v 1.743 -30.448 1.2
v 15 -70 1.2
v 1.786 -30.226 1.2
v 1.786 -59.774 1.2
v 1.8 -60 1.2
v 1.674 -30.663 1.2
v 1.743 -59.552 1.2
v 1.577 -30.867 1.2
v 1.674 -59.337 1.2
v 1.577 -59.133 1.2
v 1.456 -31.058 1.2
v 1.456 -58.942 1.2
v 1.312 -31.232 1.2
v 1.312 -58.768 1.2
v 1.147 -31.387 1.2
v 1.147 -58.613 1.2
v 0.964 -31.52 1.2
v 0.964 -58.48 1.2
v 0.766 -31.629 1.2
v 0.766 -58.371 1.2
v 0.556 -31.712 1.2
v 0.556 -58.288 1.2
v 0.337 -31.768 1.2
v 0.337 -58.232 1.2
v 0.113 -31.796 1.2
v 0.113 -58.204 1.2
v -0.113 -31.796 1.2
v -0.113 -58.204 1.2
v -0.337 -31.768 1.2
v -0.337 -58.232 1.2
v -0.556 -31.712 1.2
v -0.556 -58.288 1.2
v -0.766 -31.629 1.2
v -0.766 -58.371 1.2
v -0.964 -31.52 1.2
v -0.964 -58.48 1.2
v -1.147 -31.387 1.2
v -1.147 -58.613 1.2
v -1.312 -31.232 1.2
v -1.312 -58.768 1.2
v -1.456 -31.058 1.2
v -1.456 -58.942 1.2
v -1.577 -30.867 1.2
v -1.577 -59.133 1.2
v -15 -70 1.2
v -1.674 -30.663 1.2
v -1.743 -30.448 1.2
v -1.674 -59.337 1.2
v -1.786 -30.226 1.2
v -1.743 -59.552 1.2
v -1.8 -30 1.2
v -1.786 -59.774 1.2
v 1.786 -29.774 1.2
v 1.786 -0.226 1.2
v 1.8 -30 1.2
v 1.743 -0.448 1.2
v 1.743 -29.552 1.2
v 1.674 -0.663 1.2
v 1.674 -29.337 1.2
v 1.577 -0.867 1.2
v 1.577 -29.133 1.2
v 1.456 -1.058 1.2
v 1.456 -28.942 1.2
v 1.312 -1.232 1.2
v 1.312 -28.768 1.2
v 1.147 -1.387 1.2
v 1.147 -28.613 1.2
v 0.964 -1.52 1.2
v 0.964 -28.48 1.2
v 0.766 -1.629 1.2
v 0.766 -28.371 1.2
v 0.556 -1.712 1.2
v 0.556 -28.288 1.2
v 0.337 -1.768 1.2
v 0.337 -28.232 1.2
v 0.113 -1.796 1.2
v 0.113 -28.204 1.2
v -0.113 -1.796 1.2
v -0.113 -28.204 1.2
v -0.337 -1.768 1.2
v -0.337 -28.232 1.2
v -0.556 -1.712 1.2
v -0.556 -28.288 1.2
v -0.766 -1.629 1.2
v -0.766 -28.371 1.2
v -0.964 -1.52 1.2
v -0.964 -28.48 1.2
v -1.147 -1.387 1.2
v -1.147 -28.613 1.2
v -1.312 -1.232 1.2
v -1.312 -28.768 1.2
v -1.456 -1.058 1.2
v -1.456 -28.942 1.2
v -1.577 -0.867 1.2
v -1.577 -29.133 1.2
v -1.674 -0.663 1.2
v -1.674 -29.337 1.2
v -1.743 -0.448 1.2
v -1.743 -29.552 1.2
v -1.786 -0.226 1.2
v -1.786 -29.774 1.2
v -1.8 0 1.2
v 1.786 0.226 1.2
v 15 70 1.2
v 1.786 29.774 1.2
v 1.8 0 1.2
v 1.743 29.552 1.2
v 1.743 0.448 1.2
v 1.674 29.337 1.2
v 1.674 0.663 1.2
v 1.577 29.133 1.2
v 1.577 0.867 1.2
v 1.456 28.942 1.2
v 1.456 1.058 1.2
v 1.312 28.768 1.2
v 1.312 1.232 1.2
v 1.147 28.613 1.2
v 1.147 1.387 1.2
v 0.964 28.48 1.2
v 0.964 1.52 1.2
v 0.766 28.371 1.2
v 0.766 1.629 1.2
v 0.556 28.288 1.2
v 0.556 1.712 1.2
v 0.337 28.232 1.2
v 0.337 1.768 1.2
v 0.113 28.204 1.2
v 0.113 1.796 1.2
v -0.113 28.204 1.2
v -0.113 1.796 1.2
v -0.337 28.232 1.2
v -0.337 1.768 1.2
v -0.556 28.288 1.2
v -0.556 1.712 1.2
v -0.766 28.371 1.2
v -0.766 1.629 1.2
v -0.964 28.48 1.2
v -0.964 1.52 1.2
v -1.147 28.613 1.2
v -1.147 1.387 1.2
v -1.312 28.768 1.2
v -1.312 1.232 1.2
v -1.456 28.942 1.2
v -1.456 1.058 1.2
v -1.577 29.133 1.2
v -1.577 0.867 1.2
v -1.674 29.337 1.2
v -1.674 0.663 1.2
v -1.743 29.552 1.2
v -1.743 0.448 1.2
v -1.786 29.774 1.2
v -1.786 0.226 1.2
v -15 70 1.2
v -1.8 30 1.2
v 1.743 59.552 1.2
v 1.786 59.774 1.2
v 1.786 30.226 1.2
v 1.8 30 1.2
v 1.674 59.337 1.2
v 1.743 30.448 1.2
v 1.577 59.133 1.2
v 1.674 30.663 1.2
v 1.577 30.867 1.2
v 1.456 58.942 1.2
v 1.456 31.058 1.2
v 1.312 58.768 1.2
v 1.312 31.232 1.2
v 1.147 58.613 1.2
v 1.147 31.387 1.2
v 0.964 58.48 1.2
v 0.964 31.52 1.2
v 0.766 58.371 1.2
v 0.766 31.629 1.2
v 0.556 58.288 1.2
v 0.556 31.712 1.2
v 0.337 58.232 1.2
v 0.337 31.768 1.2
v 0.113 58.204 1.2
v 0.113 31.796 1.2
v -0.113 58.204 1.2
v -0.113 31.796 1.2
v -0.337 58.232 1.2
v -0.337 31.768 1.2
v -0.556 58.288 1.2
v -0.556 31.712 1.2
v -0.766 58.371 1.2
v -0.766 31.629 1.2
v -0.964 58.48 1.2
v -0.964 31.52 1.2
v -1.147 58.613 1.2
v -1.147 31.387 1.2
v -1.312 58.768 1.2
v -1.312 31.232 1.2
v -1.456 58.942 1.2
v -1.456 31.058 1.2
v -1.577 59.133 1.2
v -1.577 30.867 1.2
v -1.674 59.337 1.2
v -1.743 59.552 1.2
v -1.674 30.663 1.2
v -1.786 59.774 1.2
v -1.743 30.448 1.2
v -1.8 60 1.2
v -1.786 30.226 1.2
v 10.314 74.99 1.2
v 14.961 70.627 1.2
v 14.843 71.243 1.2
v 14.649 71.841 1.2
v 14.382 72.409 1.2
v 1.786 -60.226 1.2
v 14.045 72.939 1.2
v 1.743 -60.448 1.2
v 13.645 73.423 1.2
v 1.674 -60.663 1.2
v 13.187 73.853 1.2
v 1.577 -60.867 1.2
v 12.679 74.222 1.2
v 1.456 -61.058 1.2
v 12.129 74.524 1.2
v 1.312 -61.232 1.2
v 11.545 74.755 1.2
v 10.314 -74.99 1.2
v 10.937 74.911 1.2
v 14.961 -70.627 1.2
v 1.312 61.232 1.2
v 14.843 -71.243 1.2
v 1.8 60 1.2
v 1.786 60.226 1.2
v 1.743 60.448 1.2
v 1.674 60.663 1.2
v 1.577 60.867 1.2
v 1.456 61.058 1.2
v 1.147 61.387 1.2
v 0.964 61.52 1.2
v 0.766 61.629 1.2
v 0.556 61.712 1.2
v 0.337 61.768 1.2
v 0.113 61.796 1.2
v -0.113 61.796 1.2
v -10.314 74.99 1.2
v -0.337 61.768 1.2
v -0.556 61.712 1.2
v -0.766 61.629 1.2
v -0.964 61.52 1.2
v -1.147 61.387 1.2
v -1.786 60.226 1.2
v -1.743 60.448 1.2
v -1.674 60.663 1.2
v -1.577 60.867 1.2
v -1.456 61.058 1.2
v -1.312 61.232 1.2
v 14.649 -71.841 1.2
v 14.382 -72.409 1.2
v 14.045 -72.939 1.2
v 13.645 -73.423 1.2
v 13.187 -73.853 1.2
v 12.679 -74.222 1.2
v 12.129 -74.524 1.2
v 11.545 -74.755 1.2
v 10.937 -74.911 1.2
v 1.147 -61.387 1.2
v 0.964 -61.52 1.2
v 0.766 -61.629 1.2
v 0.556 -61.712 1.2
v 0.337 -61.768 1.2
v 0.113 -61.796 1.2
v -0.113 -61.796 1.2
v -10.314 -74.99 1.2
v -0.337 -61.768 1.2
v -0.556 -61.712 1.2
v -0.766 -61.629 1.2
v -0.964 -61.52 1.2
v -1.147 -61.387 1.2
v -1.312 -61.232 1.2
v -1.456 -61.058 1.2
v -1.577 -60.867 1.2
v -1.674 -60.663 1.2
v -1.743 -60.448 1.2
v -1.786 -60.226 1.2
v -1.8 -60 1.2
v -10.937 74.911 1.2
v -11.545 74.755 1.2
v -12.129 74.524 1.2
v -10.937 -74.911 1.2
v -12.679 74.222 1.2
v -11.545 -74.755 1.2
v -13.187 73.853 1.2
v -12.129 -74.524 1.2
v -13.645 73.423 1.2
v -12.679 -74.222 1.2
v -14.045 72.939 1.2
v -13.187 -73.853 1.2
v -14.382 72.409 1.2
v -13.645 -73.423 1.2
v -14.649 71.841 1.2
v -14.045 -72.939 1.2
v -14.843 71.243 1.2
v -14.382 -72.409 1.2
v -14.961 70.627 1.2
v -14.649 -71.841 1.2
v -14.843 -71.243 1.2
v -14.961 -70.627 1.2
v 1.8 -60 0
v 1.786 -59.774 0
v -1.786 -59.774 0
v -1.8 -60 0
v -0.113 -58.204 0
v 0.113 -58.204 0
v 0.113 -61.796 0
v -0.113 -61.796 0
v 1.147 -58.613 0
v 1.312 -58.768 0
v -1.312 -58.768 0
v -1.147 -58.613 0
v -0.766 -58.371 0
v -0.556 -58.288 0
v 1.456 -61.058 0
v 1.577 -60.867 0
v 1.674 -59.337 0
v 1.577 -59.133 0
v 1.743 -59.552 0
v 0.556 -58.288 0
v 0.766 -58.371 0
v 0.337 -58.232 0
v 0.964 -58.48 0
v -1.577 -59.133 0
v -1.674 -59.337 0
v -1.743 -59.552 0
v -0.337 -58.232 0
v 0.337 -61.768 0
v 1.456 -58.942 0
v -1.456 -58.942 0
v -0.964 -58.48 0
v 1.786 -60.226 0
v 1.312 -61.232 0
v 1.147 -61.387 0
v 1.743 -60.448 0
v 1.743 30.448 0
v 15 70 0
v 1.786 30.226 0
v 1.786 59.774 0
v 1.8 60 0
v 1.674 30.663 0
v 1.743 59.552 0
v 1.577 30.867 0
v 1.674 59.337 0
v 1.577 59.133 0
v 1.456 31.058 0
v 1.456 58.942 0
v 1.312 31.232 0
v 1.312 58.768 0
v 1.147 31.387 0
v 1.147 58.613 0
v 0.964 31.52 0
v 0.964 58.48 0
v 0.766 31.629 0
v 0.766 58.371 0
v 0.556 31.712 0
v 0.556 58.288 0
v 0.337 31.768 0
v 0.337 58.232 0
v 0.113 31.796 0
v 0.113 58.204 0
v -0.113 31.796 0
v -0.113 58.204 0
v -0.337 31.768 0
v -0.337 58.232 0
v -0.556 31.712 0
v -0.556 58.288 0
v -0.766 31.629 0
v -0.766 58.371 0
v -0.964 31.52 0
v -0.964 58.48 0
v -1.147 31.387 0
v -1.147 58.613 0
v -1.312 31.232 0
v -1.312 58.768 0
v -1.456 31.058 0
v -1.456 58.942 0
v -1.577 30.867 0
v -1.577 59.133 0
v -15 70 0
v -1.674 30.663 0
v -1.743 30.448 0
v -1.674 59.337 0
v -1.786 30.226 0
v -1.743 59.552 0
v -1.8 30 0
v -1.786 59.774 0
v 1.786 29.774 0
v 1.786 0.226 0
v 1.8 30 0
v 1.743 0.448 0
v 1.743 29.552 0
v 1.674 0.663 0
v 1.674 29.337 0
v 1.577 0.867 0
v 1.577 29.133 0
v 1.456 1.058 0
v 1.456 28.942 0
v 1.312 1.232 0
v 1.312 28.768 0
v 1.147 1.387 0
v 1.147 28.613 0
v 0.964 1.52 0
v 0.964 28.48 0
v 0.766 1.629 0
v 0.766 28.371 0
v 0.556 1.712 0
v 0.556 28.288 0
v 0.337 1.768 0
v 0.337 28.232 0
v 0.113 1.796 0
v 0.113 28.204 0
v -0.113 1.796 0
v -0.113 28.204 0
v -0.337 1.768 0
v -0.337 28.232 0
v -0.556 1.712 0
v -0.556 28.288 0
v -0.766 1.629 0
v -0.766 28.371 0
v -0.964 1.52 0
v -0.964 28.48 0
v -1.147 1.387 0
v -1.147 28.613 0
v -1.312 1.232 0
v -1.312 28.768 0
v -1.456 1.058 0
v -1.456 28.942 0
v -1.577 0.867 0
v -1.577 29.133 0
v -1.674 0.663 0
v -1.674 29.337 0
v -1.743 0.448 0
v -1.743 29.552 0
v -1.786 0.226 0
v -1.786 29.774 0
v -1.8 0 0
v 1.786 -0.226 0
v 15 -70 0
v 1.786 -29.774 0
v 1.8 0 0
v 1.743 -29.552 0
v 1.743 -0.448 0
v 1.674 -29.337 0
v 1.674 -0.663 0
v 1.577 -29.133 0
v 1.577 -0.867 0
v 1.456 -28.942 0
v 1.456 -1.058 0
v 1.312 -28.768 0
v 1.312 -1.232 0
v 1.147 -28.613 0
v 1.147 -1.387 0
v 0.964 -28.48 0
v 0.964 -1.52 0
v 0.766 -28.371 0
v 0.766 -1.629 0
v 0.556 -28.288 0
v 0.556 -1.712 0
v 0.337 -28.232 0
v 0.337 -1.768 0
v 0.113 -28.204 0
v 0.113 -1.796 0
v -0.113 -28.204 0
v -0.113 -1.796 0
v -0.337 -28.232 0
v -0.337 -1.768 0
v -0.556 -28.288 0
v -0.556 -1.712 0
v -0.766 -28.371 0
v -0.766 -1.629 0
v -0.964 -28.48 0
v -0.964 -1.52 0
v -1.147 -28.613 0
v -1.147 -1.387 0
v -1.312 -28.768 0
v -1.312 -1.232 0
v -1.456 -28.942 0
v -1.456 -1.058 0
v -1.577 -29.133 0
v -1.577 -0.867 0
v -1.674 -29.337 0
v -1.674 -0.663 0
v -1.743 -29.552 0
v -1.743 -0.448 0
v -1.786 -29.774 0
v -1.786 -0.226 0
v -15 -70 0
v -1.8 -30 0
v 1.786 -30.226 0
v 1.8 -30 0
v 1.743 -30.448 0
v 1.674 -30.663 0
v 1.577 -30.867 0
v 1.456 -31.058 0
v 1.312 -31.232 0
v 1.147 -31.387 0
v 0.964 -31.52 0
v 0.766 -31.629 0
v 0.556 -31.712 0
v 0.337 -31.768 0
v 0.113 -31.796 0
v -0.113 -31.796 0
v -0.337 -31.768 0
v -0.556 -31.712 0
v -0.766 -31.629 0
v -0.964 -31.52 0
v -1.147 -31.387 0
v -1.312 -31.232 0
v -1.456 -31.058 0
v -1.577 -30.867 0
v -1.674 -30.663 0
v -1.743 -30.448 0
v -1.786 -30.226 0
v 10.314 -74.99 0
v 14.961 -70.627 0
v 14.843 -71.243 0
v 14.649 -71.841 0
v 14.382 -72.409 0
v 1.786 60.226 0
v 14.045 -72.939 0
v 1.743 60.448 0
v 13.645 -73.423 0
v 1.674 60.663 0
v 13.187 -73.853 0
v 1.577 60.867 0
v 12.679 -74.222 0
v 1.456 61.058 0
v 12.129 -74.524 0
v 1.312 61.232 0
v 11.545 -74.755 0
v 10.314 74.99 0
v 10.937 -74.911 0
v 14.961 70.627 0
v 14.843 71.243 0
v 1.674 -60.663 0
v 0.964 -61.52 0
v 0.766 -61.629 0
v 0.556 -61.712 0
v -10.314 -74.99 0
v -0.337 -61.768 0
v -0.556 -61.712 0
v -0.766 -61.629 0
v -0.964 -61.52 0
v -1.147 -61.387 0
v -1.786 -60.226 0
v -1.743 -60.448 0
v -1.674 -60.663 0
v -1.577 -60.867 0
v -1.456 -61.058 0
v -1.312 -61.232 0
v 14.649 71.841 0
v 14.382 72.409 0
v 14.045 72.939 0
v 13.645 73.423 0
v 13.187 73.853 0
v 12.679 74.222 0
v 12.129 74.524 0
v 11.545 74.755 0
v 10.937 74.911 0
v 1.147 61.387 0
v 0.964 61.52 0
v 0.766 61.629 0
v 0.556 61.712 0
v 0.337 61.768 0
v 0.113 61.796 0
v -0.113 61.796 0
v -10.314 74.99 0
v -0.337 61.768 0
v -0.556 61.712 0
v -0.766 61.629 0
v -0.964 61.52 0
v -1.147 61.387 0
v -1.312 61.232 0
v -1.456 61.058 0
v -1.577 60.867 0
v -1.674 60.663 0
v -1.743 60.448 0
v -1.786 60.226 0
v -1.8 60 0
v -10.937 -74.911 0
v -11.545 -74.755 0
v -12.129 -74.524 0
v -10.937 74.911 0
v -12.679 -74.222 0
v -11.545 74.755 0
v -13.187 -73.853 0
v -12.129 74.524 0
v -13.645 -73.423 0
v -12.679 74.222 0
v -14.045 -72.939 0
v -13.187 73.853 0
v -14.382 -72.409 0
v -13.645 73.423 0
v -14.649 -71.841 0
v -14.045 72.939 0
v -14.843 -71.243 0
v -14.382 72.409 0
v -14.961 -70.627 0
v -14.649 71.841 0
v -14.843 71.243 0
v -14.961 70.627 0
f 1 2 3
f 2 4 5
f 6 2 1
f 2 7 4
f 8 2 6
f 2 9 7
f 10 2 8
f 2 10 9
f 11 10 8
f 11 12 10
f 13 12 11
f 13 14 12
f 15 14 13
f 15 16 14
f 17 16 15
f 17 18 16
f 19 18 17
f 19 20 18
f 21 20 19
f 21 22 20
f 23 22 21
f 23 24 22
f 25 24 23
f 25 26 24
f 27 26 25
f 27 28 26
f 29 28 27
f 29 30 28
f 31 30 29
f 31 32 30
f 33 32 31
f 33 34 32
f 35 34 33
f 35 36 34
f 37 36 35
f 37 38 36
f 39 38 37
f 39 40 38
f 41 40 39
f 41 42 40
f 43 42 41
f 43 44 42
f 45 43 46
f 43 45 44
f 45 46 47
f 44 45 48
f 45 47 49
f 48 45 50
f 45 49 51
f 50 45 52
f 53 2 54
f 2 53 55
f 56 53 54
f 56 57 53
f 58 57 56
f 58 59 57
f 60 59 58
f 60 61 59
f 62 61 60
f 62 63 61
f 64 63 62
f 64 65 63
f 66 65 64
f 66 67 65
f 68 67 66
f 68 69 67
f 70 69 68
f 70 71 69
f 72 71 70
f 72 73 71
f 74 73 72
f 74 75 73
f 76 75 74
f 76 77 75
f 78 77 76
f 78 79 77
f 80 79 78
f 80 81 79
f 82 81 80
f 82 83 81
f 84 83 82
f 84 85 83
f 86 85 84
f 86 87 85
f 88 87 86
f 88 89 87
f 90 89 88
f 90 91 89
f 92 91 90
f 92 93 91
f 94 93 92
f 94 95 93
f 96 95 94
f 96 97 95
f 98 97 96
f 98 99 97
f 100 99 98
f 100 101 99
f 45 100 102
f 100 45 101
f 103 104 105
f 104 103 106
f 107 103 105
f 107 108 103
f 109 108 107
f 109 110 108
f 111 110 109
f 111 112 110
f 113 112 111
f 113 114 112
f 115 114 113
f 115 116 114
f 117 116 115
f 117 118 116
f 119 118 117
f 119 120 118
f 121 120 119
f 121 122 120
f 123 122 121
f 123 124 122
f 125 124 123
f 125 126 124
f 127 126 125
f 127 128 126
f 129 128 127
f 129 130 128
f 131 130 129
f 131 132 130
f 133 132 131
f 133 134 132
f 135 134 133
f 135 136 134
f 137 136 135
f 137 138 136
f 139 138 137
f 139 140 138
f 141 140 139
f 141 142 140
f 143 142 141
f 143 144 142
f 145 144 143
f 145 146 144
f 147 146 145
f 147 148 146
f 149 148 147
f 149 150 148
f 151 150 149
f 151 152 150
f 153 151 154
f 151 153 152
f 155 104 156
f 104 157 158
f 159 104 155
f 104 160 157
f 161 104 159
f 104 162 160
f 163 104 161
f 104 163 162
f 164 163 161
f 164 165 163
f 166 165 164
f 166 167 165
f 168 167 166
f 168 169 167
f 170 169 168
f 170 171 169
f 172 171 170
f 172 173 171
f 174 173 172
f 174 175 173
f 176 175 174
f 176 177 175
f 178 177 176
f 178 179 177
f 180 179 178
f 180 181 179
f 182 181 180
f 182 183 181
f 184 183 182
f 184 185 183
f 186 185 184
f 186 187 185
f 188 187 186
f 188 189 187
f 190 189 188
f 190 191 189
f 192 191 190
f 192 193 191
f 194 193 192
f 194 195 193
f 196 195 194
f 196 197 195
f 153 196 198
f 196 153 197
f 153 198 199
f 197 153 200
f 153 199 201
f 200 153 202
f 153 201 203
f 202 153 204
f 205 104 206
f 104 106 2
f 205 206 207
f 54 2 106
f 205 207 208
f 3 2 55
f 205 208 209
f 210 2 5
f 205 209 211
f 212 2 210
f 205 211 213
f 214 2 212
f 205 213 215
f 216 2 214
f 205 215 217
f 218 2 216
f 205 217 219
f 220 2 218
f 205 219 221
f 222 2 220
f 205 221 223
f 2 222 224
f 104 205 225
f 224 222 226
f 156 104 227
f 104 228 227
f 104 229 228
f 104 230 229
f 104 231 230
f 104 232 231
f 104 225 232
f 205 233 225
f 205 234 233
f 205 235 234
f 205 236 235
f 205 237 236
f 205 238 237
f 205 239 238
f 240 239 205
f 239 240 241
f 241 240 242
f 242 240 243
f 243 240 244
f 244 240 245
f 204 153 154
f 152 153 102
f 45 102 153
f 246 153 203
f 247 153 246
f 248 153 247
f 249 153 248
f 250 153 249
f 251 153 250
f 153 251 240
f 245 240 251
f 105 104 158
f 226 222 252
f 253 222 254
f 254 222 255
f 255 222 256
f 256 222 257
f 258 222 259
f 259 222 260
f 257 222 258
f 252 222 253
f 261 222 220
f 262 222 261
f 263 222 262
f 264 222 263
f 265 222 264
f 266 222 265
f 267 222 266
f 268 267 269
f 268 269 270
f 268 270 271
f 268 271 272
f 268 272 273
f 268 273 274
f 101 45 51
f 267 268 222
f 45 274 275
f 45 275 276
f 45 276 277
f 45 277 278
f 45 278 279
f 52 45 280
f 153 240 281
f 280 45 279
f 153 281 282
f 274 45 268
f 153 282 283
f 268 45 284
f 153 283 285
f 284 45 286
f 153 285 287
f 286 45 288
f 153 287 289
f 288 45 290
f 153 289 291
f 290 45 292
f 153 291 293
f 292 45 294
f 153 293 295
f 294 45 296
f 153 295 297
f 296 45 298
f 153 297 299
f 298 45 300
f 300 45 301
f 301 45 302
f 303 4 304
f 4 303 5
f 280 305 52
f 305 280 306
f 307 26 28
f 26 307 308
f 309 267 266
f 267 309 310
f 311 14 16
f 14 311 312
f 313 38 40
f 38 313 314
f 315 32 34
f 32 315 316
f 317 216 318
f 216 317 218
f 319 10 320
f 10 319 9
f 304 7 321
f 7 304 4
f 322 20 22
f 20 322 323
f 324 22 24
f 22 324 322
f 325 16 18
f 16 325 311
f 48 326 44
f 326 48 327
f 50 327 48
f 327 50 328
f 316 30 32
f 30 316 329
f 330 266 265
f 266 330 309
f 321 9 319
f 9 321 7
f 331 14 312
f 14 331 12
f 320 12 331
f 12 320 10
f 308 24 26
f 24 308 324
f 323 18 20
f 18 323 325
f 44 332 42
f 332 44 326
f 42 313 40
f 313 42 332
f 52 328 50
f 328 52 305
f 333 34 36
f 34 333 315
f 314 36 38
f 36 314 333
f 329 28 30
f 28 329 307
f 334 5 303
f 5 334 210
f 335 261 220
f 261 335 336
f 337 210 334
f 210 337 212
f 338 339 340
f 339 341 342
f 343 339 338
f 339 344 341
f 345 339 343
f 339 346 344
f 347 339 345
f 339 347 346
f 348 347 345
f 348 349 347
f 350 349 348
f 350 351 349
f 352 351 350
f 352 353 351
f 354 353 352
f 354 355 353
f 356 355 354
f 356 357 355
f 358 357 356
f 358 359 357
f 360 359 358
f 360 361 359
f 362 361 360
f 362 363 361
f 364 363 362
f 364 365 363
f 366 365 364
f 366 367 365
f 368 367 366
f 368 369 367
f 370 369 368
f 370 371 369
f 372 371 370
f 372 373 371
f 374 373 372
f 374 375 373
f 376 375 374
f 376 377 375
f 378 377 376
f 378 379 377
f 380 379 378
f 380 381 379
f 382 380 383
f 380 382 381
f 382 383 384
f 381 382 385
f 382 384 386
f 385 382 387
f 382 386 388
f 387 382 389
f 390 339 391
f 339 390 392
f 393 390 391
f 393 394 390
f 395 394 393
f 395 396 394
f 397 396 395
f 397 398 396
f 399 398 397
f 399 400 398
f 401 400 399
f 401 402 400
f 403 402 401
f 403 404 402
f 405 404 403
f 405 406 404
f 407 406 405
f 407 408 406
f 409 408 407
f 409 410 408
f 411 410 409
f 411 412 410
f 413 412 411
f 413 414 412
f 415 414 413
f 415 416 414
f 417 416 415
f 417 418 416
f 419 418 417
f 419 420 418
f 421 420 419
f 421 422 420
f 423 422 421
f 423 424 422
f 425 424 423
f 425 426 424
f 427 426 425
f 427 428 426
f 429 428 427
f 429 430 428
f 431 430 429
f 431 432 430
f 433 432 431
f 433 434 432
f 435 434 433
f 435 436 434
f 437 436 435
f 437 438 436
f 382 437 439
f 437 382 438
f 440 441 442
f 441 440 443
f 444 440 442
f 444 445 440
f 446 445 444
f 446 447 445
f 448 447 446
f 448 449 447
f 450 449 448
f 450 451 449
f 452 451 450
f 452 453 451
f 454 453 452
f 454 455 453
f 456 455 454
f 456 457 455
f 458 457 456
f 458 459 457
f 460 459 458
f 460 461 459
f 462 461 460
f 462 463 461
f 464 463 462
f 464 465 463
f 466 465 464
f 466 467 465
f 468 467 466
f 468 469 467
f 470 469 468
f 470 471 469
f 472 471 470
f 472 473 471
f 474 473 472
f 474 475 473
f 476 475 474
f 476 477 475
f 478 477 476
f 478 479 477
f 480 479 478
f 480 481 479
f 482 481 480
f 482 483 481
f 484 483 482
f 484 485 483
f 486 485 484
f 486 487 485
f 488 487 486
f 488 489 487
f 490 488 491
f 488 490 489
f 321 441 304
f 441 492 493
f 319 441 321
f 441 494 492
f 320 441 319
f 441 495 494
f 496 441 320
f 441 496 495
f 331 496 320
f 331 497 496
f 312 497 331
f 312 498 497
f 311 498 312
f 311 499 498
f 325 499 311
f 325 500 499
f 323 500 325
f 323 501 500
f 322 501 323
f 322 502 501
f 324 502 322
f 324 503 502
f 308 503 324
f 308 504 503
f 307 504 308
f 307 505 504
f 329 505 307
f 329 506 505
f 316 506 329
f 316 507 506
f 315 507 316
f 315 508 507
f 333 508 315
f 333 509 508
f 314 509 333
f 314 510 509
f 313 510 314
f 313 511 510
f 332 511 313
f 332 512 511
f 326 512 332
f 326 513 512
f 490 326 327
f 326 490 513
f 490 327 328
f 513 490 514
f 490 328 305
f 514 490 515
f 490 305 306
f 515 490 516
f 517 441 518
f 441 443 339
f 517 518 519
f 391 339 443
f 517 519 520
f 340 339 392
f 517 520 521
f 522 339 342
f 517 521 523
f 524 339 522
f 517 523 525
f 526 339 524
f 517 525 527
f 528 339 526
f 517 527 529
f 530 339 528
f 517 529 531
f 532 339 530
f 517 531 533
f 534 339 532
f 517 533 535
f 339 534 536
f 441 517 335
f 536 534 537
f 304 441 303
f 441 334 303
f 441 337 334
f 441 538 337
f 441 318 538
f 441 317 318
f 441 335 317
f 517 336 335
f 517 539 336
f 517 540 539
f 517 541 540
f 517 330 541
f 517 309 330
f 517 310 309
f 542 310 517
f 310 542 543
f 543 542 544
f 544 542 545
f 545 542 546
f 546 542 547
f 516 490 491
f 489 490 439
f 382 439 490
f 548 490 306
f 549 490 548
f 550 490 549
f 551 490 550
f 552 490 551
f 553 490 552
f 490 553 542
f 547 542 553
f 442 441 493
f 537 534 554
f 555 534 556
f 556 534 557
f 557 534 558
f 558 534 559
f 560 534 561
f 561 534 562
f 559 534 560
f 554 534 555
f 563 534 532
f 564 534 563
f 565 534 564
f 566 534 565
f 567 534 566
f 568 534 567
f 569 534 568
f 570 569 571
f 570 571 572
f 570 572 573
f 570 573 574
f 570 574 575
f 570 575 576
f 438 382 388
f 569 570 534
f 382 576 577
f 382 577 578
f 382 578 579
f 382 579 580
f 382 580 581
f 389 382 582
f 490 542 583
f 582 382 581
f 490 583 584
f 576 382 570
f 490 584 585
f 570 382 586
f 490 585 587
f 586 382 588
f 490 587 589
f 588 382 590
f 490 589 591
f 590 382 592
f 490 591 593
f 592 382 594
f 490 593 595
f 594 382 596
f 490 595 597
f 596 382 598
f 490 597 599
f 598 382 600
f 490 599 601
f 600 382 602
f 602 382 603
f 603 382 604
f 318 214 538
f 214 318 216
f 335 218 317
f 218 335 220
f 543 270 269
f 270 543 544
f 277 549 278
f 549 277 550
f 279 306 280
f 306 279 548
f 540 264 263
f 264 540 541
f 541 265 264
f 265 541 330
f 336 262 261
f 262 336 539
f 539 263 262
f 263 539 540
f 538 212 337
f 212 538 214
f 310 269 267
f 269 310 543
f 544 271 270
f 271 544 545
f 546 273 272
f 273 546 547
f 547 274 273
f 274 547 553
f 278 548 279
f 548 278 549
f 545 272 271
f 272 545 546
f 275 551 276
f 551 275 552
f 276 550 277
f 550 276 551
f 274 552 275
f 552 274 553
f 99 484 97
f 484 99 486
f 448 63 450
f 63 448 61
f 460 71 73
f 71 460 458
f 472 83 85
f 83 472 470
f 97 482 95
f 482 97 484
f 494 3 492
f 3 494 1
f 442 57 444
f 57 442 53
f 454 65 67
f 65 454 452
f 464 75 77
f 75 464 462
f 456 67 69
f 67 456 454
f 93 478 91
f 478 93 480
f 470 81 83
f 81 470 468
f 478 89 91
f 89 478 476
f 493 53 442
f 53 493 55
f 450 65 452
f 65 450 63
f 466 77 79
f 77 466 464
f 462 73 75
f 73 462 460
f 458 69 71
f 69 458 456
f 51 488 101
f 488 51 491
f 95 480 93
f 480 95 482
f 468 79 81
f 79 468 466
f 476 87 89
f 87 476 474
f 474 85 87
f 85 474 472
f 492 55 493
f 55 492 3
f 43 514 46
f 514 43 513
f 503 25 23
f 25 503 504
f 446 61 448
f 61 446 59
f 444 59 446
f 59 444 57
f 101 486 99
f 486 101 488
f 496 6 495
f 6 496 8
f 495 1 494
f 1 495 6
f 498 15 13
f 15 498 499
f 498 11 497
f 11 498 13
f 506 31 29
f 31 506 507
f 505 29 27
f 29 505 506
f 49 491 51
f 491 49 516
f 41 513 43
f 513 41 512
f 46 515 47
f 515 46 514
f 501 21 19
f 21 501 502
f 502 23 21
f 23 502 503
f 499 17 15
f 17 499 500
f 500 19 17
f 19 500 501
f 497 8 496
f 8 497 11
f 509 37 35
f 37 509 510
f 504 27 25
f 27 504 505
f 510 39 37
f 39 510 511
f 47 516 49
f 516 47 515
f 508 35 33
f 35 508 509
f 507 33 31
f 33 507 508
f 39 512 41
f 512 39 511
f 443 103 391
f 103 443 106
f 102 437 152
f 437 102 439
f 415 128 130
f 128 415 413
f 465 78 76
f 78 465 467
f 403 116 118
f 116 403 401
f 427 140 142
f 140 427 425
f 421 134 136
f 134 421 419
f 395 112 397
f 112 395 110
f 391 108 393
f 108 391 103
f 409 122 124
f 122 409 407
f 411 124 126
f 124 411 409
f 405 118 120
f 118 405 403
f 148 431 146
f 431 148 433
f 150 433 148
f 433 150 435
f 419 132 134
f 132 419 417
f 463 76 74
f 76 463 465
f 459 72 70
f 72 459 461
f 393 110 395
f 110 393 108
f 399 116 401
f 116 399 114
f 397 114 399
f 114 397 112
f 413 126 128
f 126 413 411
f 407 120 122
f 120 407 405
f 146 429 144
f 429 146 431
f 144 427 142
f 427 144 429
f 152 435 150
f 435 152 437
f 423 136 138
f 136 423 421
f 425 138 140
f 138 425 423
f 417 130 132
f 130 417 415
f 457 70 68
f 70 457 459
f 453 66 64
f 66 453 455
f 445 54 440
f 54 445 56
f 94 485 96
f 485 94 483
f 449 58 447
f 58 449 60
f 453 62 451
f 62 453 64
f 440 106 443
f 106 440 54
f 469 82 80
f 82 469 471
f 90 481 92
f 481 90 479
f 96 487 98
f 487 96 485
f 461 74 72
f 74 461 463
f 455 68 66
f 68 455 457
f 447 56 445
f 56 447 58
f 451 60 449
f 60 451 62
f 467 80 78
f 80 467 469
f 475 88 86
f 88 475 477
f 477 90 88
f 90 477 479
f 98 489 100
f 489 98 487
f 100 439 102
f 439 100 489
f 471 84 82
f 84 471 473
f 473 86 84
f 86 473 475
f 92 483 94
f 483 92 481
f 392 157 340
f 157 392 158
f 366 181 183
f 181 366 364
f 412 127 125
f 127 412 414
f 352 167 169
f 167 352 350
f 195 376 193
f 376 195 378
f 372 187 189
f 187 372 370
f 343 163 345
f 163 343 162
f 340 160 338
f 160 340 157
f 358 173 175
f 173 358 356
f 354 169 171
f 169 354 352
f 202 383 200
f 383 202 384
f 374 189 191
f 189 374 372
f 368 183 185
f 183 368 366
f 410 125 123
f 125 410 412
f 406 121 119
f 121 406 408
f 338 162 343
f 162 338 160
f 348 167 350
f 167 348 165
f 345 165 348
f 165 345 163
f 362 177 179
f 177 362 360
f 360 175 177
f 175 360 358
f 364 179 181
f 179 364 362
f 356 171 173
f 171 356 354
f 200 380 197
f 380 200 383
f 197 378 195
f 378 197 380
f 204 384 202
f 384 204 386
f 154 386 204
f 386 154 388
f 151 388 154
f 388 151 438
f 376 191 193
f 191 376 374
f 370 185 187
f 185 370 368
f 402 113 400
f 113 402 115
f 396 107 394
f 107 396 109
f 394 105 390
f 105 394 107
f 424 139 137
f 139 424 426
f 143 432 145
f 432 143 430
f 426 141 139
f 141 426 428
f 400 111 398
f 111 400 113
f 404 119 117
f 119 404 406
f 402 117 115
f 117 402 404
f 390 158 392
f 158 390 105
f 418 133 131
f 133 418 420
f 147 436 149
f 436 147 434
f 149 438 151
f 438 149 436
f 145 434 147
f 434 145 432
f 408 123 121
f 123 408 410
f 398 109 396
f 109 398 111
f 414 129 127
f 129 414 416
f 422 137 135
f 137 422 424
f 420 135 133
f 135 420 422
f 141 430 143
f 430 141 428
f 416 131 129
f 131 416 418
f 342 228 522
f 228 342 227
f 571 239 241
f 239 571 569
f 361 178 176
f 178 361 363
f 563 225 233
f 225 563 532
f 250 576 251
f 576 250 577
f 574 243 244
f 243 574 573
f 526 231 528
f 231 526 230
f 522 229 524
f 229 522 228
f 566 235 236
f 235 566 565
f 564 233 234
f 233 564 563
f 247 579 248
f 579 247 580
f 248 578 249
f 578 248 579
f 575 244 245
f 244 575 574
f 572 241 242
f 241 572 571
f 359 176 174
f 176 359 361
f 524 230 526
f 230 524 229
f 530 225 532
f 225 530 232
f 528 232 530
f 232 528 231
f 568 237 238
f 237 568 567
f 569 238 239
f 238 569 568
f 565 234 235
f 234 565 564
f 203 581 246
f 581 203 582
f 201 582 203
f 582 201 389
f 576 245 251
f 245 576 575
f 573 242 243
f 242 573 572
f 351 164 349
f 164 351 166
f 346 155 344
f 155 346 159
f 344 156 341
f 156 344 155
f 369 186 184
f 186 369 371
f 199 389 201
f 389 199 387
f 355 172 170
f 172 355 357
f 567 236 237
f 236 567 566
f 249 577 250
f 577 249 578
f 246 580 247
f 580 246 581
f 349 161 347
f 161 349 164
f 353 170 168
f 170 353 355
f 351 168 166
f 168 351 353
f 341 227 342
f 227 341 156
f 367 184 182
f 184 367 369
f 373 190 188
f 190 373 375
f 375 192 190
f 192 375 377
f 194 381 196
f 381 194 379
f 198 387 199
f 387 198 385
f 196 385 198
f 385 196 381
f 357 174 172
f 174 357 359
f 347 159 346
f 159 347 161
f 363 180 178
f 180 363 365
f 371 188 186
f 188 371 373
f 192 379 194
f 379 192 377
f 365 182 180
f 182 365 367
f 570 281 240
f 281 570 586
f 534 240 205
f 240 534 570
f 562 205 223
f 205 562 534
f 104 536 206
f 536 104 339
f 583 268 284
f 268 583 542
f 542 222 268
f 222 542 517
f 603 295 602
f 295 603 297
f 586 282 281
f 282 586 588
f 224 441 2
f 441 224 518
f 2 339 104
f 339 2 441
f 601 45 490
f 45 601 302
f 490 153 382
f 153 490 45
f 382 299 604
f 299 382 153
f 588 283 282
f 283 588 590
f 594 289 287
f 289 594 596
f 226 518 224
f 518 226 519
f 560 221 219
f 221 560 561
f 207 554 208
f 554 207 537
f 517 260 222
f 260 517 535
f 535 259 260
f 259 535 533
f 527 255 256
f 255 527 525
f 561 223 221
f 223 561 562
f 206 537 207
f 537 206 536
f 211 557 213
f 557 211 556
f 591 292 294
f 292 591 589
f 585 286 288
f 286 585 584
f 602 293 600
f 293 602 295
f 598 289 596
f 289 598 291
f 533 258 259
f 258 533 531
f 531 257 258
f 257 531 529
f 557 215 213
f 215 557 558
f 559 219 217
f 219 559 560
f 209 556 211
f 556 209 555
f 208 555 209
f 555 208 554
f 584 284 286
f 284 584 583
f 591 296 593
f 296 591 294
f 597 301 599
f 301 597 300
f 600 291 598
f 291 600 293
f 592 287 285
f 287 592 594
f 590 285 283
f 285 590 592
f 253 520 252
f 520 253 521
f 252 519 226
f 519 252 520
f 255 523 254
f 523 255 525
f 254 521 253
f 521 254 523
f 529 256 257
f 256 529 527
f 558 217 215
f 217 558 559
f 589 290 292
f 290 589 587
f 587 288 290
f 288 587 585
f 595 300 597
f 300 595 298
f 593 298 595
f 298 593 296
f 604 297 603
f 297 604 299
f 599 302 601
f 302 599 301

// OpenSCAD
$fn = 50;


difference() {
	union() {
		hull() {
			translate(v = [-10.0000000000, 70.0000000000, 0]) {
				cylinder(h = 45, r = 5);
			}
			translate(v = [10.0000000000, 70.0000000000, 0]) {
				cylinder(h = 45, r = 5);
			}
			translate(v = [-10.0000000000, -70.0000000000, 0]) {
				cylinder(h = 45, r = 5);
			}
			translate(v = [10.0000000000, -70.0000000000, 0]) {
				cylinder(h = 45, r = 5);
			}
		}
	}
	union() {
		translate(v = [0, 0, 1.2000000000]) {
			hull() {
				translate(v = [-10.0000000000, 70.0000000000, 0]) {
					cylinder(h = 43.8000000000, r = 3.8000000000);
				}
				translate(v = [10.0000000000, 70.0000000000, 0]) {
					cylinder(h = 43.8000000000, r = 3.8000000000);
				}
				translate(v = [-10.0000000000, -70.0000000000, 0]) {
					cylinder(h = 43.8000000000, r = 3.8000000000);
				}
				translate(v = [10.0000000000, -70.0000000000, 0]) {
					cylinder(h = 43.8000000000, r = 3.8000000000);
				}
			}
		}
		#translate(v = [0.0000000000, -60.0000000000, 0]) {
			cylinder(h = 1.2000000000, r = 1.8000000000);
		}
		#translate(v = [0.0000000000, -30.0000000000, 0]) {
			cylinder(h = 1.2000000000, r = 1.8000000000);
		}
		#cylinder(h = 1.2000000000, r = 1.8000000000);
		#translate(v = [0.0000000000, 30.0000000000, 0]) {
			cylinder(h = 1.2000000000, r = 1.8000000000);
		}
		#translate(v = [0.0000000000, 60.0000000000, 0]) {
			cylinder(h = 1.2000000000, r = 1.8000000000);
		}
		translate(v = [-250.0000000000, -250.0000000000, 1.2000000000]) {
			cube(size = [500, 500, 500]);
		}
		translate(v = [-250.0000000000, -250.0000000000, 1.2000000000]) {
			cube(size = [500, 500, 500]);
		}
		translate(v = [-250.0000000000, -250.0000000000, 1.2000000000]) {
			cube(size = [500, 500, 500]);
		}
	}
}
